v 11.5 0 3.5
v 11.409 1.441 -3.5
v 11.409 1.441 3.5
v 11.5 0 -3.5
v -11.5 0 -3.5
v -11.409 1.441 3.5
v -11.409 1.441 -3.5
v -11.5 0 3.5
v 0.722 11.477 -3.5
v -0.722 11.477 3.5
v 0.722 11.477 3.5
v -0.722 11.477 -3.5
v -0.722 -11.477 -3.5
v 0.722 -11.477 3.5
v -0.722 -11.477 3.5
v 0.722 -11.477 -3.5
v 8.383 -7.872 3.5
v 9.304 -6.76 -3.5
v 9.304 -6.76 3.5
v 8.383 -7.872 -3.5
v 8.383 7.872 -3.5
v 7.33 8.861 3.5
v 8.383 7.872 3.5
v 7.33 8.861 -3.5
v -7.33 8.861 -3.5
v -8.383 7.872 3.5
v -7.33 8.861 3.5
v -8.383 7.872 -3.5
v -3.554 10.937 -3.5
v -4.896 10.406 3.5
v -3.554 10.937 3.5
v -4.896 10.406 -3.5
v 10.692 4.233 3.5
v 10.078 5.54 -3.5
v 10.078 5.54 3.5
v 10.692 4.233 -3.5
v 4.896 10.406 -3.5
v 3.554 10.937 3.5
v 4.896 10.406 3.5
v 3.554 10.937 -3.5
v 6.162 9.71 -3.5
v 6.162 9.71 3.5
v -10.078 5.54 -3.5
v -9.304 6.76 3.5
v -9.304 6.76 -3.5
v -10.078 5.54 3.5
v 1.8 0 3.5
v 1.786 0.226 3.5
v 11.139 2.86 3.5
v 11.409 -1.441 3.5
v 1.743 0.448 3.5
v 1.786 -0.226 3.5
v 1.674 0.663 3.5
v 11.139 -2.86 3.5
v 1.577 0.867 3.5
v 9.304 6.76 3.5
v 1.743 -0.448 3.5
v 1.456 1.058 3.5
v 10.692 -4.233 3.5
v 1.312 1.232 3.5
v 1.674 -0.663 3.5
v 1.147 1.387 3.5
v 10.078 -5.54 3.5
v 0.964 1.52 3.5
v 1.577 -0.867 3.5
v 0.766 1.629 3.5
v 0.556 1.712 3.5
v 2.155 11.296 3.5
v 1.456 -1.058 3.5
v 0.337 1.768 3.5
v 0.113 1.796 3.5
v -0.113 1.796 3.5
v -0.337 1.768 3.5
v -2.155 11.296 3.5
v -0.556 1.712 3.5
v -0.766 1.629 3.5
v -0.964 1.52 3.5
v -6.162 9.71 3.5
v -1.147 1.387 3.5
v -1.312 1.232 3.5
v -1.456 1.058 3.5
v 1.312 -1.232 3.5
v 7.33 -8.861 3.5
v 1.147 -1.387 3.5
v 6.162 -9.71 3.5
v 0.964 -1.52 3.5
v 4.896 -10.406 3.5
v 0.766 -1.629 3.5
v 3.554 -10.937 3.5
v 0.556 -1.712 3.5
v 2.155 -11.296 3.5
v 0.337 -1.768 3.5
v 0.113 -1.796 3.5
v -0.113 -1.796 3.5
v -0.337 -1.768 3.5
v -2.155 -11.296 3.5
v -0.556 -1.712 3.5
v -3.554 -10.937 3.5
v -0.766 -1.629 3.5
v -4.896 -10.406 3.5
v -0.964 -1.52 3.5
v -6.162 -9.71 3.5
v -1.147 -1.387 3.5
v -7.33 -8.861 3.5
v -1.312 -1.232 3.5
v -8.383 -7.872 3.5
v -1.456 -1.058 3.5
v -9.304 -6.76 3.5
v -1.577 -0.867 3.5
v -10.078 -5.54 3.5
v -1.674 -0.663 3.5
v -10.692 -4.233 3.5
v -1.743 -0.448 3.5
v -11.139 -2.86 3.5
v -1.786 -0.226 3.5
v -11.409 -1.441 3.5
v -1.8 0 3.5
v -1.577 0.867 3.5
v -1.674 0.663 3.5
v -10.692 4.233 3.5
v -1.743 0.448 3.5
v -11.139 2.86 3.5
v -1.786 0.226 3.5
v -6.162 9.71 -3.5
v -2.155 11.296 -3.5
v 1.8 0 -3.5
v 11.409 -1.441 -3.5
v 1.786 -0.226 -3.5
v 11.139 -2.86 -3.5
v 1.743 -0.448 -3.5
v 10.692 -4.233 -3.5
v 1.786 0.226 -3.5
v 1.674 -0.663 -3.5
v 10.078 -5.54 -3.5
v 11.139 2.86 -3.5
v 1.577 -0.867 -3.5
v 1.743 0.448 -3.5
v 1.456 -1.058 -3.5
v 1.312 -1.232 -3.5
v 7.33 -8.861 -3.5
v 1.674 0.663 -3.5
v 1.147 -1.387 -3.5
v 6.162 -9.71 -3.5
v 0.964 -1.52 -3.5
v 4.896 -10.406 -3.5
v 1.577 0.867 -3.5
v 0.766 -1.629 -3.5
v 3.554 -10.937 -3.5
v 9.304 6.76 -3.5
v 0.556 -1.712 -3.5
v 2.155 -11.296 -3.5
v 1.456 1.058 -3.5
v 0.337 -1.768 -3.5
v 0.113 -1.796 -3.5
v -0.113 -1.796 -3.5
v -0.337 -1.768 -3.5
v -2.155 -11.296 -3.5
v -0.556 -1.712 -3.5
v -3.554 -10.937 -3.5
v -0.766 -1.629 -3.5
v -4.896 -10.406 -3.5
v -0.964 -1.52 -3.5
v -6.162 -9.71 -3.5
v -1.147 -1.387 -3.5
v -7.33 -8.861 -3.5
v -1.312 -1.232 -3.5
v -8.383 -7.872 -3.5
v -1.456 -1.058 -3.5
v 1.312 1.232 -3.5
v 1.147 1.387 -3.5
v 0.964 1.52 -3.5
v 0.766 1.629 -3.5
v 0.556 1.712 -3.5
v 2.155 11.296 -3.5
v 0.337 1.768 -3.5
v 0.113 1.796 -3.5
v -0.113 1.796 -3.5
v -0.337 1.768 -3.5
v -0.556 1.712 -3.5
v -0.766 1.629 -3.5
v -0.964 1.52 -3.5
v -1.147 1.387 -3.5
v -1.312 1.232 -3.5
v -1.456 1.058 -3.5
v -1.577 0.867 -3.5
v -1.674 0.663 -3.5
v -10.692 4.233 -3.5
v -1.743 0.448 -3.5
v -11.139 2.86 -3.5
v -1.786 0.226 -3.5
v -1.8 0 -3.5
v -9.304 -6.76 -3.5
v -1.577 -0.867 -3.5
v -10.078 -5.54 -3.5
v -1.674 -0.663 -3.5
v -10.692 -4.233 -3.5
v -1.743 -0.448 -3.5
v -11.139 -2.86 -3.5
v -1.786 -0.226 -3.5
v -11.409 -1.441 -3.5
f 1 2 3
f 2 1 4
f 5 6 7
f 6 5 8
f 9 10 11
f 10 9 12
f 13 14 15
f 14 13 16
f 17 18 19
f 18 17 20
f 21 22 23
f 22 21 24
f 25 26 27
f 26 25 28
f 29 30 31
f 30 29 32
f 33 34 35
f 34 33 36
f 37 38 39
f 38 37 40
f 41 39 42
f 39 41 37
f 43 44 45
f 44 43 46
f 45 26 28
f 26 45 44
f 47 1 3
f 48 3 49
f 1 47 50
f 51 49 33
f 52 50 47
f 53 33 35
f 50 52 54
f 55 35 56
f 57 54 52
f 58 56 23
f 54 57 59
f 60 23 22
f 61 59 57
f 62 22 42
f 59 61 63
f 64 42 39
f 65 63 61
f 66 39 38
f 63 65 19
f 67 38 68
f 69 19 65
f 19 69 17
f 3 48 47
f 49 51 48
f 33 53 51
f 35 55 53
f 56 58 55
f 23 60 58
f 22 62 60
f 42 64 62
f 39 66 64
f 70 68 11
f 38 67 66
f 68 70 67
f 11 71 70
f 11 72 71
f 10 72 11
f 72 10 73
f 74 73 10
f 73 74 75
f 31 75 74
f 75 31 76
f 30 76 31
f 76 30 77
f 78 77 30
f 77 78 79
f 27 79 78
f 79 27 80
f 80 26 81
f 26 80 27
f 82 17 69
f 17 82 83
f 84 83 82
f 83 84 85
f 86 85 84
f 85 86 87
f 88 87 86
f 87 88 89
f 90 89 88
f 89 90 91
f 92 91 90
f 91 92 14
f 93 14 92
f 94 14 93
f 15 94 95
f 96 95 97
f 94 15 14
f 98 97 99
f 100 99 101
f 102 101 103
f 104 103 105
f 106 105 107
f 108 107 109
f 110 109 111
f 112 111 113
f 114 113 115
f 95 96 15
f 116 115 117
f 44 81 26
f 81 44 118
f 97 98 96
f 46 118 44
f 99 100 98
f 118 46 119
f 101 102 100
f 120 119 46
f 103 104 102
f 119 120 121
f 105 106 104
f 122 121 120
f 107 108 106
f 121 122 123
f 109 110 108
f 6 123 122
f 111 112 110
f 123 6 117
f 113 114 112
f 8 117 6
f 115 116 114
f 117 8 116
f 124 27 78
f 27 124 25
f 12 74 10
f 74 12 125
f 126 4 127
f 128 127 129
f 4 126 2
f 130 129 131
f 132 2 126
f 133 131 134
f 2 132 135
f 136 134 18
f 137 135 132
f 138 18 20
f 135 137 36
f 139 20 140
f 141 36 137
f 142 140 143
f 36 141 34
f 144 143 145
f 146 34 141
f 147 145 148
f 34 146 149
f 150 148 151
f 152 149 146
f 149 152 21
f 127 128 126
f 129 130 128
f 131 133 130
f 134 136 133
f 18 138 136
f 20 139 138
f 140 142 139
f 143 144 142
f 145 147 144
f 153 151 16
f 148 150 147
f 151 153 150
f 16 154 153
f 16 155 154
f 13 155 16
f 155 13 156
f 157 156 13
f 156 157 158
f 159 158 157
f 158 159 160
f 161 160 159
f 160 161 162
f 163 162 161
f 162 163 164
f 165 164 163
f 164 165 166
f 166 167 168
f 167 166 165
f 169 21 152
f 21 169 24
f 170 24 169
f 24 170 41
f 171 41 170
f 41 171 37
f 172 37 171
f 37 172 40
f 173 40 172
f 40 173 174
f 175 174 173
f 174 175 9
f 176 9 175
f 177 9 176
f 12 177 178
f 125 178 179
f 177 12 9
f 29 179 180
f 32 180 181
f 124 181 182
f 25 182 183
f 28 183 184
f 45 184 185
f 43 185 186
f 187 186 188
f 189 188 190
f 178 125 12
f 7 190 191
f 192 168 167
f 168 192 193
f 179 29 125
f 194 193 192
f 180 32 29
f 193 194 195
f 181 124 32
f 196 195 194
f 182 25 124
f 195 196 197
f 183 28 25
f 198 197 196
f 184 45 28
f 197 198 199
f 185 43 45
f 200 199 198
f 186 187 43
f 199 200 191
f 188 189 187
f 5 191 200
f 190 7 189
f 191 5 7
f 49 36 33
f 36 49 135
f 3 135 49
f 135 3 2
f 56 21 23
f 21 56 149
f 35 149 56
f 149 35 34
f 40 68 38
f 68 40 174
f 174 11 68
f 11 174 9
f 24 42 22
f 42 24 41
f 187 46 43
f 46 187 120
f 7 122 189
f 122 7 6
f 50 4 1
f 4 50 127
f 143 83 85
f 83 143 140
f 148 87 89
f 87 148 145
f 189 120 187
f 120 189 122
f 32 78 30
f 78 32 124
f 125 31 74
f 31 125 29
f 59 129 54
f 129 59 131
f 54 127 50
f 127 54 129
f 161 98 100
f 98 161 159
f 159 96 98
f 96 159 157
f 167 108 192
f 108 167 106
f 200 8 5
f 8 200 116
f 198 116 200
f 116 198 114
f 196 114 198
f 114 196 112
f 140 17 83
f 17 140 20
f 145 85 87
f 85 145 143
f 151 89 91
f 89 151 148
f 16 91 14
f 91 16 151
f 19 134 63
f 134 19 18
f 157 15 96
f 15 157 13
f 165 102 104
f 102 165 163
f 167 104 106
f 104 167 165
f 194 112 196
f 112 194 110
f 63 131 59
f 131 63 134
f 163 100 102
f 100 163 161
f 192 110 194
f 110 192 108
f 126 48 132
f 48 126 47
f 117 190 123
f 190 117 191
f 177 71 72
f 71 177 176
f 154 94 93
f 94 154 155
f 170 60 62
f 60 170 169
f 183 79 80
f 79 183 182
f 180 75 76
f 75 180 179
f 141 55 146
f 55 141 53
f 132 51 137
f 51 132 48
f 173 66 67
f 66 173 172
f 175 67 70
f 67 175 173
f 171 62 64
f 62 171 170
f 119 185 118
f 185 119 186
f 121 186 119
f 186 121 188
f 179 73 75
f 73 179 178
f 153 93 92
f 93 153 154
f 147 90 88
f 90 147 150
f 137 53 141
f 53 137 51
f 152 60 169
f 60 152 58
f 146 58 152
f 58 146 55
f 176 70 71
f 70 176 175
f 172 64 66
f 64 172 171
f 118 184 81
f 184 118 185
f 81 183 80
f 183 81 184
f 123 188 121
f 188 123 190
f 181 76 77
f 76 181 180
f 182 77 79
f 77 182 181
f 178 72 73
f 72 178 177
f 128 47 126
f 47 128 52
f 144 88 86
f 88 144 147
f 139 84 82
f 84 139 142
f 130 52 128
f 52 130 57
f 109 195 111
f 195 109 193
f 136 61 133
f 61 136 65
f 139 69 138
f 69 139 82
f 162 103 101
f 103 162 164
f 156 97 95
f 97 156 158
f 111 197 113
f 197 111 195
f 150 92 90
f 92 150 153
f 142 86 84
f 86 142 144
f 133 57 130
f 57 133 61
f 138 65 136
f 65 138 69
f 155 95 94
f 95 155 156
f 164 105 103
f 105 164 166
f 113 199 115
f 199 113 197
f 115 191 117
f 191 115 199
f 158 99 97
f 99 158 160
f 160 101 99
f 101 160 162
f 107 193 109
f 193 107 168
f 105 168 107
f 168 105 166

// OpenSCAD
$fn = 50;


difference() {
	union() {
		translate(v = [0, 0, -3.5000000000]) {
			cylinder(h = 7, r = 11.5000000000);
		}
	}
	union() {
		translate(v = [0, 0, -100.0000000000]) {
			cylinder(h = 200, r = 1.8000000000);
		}
	}
}
